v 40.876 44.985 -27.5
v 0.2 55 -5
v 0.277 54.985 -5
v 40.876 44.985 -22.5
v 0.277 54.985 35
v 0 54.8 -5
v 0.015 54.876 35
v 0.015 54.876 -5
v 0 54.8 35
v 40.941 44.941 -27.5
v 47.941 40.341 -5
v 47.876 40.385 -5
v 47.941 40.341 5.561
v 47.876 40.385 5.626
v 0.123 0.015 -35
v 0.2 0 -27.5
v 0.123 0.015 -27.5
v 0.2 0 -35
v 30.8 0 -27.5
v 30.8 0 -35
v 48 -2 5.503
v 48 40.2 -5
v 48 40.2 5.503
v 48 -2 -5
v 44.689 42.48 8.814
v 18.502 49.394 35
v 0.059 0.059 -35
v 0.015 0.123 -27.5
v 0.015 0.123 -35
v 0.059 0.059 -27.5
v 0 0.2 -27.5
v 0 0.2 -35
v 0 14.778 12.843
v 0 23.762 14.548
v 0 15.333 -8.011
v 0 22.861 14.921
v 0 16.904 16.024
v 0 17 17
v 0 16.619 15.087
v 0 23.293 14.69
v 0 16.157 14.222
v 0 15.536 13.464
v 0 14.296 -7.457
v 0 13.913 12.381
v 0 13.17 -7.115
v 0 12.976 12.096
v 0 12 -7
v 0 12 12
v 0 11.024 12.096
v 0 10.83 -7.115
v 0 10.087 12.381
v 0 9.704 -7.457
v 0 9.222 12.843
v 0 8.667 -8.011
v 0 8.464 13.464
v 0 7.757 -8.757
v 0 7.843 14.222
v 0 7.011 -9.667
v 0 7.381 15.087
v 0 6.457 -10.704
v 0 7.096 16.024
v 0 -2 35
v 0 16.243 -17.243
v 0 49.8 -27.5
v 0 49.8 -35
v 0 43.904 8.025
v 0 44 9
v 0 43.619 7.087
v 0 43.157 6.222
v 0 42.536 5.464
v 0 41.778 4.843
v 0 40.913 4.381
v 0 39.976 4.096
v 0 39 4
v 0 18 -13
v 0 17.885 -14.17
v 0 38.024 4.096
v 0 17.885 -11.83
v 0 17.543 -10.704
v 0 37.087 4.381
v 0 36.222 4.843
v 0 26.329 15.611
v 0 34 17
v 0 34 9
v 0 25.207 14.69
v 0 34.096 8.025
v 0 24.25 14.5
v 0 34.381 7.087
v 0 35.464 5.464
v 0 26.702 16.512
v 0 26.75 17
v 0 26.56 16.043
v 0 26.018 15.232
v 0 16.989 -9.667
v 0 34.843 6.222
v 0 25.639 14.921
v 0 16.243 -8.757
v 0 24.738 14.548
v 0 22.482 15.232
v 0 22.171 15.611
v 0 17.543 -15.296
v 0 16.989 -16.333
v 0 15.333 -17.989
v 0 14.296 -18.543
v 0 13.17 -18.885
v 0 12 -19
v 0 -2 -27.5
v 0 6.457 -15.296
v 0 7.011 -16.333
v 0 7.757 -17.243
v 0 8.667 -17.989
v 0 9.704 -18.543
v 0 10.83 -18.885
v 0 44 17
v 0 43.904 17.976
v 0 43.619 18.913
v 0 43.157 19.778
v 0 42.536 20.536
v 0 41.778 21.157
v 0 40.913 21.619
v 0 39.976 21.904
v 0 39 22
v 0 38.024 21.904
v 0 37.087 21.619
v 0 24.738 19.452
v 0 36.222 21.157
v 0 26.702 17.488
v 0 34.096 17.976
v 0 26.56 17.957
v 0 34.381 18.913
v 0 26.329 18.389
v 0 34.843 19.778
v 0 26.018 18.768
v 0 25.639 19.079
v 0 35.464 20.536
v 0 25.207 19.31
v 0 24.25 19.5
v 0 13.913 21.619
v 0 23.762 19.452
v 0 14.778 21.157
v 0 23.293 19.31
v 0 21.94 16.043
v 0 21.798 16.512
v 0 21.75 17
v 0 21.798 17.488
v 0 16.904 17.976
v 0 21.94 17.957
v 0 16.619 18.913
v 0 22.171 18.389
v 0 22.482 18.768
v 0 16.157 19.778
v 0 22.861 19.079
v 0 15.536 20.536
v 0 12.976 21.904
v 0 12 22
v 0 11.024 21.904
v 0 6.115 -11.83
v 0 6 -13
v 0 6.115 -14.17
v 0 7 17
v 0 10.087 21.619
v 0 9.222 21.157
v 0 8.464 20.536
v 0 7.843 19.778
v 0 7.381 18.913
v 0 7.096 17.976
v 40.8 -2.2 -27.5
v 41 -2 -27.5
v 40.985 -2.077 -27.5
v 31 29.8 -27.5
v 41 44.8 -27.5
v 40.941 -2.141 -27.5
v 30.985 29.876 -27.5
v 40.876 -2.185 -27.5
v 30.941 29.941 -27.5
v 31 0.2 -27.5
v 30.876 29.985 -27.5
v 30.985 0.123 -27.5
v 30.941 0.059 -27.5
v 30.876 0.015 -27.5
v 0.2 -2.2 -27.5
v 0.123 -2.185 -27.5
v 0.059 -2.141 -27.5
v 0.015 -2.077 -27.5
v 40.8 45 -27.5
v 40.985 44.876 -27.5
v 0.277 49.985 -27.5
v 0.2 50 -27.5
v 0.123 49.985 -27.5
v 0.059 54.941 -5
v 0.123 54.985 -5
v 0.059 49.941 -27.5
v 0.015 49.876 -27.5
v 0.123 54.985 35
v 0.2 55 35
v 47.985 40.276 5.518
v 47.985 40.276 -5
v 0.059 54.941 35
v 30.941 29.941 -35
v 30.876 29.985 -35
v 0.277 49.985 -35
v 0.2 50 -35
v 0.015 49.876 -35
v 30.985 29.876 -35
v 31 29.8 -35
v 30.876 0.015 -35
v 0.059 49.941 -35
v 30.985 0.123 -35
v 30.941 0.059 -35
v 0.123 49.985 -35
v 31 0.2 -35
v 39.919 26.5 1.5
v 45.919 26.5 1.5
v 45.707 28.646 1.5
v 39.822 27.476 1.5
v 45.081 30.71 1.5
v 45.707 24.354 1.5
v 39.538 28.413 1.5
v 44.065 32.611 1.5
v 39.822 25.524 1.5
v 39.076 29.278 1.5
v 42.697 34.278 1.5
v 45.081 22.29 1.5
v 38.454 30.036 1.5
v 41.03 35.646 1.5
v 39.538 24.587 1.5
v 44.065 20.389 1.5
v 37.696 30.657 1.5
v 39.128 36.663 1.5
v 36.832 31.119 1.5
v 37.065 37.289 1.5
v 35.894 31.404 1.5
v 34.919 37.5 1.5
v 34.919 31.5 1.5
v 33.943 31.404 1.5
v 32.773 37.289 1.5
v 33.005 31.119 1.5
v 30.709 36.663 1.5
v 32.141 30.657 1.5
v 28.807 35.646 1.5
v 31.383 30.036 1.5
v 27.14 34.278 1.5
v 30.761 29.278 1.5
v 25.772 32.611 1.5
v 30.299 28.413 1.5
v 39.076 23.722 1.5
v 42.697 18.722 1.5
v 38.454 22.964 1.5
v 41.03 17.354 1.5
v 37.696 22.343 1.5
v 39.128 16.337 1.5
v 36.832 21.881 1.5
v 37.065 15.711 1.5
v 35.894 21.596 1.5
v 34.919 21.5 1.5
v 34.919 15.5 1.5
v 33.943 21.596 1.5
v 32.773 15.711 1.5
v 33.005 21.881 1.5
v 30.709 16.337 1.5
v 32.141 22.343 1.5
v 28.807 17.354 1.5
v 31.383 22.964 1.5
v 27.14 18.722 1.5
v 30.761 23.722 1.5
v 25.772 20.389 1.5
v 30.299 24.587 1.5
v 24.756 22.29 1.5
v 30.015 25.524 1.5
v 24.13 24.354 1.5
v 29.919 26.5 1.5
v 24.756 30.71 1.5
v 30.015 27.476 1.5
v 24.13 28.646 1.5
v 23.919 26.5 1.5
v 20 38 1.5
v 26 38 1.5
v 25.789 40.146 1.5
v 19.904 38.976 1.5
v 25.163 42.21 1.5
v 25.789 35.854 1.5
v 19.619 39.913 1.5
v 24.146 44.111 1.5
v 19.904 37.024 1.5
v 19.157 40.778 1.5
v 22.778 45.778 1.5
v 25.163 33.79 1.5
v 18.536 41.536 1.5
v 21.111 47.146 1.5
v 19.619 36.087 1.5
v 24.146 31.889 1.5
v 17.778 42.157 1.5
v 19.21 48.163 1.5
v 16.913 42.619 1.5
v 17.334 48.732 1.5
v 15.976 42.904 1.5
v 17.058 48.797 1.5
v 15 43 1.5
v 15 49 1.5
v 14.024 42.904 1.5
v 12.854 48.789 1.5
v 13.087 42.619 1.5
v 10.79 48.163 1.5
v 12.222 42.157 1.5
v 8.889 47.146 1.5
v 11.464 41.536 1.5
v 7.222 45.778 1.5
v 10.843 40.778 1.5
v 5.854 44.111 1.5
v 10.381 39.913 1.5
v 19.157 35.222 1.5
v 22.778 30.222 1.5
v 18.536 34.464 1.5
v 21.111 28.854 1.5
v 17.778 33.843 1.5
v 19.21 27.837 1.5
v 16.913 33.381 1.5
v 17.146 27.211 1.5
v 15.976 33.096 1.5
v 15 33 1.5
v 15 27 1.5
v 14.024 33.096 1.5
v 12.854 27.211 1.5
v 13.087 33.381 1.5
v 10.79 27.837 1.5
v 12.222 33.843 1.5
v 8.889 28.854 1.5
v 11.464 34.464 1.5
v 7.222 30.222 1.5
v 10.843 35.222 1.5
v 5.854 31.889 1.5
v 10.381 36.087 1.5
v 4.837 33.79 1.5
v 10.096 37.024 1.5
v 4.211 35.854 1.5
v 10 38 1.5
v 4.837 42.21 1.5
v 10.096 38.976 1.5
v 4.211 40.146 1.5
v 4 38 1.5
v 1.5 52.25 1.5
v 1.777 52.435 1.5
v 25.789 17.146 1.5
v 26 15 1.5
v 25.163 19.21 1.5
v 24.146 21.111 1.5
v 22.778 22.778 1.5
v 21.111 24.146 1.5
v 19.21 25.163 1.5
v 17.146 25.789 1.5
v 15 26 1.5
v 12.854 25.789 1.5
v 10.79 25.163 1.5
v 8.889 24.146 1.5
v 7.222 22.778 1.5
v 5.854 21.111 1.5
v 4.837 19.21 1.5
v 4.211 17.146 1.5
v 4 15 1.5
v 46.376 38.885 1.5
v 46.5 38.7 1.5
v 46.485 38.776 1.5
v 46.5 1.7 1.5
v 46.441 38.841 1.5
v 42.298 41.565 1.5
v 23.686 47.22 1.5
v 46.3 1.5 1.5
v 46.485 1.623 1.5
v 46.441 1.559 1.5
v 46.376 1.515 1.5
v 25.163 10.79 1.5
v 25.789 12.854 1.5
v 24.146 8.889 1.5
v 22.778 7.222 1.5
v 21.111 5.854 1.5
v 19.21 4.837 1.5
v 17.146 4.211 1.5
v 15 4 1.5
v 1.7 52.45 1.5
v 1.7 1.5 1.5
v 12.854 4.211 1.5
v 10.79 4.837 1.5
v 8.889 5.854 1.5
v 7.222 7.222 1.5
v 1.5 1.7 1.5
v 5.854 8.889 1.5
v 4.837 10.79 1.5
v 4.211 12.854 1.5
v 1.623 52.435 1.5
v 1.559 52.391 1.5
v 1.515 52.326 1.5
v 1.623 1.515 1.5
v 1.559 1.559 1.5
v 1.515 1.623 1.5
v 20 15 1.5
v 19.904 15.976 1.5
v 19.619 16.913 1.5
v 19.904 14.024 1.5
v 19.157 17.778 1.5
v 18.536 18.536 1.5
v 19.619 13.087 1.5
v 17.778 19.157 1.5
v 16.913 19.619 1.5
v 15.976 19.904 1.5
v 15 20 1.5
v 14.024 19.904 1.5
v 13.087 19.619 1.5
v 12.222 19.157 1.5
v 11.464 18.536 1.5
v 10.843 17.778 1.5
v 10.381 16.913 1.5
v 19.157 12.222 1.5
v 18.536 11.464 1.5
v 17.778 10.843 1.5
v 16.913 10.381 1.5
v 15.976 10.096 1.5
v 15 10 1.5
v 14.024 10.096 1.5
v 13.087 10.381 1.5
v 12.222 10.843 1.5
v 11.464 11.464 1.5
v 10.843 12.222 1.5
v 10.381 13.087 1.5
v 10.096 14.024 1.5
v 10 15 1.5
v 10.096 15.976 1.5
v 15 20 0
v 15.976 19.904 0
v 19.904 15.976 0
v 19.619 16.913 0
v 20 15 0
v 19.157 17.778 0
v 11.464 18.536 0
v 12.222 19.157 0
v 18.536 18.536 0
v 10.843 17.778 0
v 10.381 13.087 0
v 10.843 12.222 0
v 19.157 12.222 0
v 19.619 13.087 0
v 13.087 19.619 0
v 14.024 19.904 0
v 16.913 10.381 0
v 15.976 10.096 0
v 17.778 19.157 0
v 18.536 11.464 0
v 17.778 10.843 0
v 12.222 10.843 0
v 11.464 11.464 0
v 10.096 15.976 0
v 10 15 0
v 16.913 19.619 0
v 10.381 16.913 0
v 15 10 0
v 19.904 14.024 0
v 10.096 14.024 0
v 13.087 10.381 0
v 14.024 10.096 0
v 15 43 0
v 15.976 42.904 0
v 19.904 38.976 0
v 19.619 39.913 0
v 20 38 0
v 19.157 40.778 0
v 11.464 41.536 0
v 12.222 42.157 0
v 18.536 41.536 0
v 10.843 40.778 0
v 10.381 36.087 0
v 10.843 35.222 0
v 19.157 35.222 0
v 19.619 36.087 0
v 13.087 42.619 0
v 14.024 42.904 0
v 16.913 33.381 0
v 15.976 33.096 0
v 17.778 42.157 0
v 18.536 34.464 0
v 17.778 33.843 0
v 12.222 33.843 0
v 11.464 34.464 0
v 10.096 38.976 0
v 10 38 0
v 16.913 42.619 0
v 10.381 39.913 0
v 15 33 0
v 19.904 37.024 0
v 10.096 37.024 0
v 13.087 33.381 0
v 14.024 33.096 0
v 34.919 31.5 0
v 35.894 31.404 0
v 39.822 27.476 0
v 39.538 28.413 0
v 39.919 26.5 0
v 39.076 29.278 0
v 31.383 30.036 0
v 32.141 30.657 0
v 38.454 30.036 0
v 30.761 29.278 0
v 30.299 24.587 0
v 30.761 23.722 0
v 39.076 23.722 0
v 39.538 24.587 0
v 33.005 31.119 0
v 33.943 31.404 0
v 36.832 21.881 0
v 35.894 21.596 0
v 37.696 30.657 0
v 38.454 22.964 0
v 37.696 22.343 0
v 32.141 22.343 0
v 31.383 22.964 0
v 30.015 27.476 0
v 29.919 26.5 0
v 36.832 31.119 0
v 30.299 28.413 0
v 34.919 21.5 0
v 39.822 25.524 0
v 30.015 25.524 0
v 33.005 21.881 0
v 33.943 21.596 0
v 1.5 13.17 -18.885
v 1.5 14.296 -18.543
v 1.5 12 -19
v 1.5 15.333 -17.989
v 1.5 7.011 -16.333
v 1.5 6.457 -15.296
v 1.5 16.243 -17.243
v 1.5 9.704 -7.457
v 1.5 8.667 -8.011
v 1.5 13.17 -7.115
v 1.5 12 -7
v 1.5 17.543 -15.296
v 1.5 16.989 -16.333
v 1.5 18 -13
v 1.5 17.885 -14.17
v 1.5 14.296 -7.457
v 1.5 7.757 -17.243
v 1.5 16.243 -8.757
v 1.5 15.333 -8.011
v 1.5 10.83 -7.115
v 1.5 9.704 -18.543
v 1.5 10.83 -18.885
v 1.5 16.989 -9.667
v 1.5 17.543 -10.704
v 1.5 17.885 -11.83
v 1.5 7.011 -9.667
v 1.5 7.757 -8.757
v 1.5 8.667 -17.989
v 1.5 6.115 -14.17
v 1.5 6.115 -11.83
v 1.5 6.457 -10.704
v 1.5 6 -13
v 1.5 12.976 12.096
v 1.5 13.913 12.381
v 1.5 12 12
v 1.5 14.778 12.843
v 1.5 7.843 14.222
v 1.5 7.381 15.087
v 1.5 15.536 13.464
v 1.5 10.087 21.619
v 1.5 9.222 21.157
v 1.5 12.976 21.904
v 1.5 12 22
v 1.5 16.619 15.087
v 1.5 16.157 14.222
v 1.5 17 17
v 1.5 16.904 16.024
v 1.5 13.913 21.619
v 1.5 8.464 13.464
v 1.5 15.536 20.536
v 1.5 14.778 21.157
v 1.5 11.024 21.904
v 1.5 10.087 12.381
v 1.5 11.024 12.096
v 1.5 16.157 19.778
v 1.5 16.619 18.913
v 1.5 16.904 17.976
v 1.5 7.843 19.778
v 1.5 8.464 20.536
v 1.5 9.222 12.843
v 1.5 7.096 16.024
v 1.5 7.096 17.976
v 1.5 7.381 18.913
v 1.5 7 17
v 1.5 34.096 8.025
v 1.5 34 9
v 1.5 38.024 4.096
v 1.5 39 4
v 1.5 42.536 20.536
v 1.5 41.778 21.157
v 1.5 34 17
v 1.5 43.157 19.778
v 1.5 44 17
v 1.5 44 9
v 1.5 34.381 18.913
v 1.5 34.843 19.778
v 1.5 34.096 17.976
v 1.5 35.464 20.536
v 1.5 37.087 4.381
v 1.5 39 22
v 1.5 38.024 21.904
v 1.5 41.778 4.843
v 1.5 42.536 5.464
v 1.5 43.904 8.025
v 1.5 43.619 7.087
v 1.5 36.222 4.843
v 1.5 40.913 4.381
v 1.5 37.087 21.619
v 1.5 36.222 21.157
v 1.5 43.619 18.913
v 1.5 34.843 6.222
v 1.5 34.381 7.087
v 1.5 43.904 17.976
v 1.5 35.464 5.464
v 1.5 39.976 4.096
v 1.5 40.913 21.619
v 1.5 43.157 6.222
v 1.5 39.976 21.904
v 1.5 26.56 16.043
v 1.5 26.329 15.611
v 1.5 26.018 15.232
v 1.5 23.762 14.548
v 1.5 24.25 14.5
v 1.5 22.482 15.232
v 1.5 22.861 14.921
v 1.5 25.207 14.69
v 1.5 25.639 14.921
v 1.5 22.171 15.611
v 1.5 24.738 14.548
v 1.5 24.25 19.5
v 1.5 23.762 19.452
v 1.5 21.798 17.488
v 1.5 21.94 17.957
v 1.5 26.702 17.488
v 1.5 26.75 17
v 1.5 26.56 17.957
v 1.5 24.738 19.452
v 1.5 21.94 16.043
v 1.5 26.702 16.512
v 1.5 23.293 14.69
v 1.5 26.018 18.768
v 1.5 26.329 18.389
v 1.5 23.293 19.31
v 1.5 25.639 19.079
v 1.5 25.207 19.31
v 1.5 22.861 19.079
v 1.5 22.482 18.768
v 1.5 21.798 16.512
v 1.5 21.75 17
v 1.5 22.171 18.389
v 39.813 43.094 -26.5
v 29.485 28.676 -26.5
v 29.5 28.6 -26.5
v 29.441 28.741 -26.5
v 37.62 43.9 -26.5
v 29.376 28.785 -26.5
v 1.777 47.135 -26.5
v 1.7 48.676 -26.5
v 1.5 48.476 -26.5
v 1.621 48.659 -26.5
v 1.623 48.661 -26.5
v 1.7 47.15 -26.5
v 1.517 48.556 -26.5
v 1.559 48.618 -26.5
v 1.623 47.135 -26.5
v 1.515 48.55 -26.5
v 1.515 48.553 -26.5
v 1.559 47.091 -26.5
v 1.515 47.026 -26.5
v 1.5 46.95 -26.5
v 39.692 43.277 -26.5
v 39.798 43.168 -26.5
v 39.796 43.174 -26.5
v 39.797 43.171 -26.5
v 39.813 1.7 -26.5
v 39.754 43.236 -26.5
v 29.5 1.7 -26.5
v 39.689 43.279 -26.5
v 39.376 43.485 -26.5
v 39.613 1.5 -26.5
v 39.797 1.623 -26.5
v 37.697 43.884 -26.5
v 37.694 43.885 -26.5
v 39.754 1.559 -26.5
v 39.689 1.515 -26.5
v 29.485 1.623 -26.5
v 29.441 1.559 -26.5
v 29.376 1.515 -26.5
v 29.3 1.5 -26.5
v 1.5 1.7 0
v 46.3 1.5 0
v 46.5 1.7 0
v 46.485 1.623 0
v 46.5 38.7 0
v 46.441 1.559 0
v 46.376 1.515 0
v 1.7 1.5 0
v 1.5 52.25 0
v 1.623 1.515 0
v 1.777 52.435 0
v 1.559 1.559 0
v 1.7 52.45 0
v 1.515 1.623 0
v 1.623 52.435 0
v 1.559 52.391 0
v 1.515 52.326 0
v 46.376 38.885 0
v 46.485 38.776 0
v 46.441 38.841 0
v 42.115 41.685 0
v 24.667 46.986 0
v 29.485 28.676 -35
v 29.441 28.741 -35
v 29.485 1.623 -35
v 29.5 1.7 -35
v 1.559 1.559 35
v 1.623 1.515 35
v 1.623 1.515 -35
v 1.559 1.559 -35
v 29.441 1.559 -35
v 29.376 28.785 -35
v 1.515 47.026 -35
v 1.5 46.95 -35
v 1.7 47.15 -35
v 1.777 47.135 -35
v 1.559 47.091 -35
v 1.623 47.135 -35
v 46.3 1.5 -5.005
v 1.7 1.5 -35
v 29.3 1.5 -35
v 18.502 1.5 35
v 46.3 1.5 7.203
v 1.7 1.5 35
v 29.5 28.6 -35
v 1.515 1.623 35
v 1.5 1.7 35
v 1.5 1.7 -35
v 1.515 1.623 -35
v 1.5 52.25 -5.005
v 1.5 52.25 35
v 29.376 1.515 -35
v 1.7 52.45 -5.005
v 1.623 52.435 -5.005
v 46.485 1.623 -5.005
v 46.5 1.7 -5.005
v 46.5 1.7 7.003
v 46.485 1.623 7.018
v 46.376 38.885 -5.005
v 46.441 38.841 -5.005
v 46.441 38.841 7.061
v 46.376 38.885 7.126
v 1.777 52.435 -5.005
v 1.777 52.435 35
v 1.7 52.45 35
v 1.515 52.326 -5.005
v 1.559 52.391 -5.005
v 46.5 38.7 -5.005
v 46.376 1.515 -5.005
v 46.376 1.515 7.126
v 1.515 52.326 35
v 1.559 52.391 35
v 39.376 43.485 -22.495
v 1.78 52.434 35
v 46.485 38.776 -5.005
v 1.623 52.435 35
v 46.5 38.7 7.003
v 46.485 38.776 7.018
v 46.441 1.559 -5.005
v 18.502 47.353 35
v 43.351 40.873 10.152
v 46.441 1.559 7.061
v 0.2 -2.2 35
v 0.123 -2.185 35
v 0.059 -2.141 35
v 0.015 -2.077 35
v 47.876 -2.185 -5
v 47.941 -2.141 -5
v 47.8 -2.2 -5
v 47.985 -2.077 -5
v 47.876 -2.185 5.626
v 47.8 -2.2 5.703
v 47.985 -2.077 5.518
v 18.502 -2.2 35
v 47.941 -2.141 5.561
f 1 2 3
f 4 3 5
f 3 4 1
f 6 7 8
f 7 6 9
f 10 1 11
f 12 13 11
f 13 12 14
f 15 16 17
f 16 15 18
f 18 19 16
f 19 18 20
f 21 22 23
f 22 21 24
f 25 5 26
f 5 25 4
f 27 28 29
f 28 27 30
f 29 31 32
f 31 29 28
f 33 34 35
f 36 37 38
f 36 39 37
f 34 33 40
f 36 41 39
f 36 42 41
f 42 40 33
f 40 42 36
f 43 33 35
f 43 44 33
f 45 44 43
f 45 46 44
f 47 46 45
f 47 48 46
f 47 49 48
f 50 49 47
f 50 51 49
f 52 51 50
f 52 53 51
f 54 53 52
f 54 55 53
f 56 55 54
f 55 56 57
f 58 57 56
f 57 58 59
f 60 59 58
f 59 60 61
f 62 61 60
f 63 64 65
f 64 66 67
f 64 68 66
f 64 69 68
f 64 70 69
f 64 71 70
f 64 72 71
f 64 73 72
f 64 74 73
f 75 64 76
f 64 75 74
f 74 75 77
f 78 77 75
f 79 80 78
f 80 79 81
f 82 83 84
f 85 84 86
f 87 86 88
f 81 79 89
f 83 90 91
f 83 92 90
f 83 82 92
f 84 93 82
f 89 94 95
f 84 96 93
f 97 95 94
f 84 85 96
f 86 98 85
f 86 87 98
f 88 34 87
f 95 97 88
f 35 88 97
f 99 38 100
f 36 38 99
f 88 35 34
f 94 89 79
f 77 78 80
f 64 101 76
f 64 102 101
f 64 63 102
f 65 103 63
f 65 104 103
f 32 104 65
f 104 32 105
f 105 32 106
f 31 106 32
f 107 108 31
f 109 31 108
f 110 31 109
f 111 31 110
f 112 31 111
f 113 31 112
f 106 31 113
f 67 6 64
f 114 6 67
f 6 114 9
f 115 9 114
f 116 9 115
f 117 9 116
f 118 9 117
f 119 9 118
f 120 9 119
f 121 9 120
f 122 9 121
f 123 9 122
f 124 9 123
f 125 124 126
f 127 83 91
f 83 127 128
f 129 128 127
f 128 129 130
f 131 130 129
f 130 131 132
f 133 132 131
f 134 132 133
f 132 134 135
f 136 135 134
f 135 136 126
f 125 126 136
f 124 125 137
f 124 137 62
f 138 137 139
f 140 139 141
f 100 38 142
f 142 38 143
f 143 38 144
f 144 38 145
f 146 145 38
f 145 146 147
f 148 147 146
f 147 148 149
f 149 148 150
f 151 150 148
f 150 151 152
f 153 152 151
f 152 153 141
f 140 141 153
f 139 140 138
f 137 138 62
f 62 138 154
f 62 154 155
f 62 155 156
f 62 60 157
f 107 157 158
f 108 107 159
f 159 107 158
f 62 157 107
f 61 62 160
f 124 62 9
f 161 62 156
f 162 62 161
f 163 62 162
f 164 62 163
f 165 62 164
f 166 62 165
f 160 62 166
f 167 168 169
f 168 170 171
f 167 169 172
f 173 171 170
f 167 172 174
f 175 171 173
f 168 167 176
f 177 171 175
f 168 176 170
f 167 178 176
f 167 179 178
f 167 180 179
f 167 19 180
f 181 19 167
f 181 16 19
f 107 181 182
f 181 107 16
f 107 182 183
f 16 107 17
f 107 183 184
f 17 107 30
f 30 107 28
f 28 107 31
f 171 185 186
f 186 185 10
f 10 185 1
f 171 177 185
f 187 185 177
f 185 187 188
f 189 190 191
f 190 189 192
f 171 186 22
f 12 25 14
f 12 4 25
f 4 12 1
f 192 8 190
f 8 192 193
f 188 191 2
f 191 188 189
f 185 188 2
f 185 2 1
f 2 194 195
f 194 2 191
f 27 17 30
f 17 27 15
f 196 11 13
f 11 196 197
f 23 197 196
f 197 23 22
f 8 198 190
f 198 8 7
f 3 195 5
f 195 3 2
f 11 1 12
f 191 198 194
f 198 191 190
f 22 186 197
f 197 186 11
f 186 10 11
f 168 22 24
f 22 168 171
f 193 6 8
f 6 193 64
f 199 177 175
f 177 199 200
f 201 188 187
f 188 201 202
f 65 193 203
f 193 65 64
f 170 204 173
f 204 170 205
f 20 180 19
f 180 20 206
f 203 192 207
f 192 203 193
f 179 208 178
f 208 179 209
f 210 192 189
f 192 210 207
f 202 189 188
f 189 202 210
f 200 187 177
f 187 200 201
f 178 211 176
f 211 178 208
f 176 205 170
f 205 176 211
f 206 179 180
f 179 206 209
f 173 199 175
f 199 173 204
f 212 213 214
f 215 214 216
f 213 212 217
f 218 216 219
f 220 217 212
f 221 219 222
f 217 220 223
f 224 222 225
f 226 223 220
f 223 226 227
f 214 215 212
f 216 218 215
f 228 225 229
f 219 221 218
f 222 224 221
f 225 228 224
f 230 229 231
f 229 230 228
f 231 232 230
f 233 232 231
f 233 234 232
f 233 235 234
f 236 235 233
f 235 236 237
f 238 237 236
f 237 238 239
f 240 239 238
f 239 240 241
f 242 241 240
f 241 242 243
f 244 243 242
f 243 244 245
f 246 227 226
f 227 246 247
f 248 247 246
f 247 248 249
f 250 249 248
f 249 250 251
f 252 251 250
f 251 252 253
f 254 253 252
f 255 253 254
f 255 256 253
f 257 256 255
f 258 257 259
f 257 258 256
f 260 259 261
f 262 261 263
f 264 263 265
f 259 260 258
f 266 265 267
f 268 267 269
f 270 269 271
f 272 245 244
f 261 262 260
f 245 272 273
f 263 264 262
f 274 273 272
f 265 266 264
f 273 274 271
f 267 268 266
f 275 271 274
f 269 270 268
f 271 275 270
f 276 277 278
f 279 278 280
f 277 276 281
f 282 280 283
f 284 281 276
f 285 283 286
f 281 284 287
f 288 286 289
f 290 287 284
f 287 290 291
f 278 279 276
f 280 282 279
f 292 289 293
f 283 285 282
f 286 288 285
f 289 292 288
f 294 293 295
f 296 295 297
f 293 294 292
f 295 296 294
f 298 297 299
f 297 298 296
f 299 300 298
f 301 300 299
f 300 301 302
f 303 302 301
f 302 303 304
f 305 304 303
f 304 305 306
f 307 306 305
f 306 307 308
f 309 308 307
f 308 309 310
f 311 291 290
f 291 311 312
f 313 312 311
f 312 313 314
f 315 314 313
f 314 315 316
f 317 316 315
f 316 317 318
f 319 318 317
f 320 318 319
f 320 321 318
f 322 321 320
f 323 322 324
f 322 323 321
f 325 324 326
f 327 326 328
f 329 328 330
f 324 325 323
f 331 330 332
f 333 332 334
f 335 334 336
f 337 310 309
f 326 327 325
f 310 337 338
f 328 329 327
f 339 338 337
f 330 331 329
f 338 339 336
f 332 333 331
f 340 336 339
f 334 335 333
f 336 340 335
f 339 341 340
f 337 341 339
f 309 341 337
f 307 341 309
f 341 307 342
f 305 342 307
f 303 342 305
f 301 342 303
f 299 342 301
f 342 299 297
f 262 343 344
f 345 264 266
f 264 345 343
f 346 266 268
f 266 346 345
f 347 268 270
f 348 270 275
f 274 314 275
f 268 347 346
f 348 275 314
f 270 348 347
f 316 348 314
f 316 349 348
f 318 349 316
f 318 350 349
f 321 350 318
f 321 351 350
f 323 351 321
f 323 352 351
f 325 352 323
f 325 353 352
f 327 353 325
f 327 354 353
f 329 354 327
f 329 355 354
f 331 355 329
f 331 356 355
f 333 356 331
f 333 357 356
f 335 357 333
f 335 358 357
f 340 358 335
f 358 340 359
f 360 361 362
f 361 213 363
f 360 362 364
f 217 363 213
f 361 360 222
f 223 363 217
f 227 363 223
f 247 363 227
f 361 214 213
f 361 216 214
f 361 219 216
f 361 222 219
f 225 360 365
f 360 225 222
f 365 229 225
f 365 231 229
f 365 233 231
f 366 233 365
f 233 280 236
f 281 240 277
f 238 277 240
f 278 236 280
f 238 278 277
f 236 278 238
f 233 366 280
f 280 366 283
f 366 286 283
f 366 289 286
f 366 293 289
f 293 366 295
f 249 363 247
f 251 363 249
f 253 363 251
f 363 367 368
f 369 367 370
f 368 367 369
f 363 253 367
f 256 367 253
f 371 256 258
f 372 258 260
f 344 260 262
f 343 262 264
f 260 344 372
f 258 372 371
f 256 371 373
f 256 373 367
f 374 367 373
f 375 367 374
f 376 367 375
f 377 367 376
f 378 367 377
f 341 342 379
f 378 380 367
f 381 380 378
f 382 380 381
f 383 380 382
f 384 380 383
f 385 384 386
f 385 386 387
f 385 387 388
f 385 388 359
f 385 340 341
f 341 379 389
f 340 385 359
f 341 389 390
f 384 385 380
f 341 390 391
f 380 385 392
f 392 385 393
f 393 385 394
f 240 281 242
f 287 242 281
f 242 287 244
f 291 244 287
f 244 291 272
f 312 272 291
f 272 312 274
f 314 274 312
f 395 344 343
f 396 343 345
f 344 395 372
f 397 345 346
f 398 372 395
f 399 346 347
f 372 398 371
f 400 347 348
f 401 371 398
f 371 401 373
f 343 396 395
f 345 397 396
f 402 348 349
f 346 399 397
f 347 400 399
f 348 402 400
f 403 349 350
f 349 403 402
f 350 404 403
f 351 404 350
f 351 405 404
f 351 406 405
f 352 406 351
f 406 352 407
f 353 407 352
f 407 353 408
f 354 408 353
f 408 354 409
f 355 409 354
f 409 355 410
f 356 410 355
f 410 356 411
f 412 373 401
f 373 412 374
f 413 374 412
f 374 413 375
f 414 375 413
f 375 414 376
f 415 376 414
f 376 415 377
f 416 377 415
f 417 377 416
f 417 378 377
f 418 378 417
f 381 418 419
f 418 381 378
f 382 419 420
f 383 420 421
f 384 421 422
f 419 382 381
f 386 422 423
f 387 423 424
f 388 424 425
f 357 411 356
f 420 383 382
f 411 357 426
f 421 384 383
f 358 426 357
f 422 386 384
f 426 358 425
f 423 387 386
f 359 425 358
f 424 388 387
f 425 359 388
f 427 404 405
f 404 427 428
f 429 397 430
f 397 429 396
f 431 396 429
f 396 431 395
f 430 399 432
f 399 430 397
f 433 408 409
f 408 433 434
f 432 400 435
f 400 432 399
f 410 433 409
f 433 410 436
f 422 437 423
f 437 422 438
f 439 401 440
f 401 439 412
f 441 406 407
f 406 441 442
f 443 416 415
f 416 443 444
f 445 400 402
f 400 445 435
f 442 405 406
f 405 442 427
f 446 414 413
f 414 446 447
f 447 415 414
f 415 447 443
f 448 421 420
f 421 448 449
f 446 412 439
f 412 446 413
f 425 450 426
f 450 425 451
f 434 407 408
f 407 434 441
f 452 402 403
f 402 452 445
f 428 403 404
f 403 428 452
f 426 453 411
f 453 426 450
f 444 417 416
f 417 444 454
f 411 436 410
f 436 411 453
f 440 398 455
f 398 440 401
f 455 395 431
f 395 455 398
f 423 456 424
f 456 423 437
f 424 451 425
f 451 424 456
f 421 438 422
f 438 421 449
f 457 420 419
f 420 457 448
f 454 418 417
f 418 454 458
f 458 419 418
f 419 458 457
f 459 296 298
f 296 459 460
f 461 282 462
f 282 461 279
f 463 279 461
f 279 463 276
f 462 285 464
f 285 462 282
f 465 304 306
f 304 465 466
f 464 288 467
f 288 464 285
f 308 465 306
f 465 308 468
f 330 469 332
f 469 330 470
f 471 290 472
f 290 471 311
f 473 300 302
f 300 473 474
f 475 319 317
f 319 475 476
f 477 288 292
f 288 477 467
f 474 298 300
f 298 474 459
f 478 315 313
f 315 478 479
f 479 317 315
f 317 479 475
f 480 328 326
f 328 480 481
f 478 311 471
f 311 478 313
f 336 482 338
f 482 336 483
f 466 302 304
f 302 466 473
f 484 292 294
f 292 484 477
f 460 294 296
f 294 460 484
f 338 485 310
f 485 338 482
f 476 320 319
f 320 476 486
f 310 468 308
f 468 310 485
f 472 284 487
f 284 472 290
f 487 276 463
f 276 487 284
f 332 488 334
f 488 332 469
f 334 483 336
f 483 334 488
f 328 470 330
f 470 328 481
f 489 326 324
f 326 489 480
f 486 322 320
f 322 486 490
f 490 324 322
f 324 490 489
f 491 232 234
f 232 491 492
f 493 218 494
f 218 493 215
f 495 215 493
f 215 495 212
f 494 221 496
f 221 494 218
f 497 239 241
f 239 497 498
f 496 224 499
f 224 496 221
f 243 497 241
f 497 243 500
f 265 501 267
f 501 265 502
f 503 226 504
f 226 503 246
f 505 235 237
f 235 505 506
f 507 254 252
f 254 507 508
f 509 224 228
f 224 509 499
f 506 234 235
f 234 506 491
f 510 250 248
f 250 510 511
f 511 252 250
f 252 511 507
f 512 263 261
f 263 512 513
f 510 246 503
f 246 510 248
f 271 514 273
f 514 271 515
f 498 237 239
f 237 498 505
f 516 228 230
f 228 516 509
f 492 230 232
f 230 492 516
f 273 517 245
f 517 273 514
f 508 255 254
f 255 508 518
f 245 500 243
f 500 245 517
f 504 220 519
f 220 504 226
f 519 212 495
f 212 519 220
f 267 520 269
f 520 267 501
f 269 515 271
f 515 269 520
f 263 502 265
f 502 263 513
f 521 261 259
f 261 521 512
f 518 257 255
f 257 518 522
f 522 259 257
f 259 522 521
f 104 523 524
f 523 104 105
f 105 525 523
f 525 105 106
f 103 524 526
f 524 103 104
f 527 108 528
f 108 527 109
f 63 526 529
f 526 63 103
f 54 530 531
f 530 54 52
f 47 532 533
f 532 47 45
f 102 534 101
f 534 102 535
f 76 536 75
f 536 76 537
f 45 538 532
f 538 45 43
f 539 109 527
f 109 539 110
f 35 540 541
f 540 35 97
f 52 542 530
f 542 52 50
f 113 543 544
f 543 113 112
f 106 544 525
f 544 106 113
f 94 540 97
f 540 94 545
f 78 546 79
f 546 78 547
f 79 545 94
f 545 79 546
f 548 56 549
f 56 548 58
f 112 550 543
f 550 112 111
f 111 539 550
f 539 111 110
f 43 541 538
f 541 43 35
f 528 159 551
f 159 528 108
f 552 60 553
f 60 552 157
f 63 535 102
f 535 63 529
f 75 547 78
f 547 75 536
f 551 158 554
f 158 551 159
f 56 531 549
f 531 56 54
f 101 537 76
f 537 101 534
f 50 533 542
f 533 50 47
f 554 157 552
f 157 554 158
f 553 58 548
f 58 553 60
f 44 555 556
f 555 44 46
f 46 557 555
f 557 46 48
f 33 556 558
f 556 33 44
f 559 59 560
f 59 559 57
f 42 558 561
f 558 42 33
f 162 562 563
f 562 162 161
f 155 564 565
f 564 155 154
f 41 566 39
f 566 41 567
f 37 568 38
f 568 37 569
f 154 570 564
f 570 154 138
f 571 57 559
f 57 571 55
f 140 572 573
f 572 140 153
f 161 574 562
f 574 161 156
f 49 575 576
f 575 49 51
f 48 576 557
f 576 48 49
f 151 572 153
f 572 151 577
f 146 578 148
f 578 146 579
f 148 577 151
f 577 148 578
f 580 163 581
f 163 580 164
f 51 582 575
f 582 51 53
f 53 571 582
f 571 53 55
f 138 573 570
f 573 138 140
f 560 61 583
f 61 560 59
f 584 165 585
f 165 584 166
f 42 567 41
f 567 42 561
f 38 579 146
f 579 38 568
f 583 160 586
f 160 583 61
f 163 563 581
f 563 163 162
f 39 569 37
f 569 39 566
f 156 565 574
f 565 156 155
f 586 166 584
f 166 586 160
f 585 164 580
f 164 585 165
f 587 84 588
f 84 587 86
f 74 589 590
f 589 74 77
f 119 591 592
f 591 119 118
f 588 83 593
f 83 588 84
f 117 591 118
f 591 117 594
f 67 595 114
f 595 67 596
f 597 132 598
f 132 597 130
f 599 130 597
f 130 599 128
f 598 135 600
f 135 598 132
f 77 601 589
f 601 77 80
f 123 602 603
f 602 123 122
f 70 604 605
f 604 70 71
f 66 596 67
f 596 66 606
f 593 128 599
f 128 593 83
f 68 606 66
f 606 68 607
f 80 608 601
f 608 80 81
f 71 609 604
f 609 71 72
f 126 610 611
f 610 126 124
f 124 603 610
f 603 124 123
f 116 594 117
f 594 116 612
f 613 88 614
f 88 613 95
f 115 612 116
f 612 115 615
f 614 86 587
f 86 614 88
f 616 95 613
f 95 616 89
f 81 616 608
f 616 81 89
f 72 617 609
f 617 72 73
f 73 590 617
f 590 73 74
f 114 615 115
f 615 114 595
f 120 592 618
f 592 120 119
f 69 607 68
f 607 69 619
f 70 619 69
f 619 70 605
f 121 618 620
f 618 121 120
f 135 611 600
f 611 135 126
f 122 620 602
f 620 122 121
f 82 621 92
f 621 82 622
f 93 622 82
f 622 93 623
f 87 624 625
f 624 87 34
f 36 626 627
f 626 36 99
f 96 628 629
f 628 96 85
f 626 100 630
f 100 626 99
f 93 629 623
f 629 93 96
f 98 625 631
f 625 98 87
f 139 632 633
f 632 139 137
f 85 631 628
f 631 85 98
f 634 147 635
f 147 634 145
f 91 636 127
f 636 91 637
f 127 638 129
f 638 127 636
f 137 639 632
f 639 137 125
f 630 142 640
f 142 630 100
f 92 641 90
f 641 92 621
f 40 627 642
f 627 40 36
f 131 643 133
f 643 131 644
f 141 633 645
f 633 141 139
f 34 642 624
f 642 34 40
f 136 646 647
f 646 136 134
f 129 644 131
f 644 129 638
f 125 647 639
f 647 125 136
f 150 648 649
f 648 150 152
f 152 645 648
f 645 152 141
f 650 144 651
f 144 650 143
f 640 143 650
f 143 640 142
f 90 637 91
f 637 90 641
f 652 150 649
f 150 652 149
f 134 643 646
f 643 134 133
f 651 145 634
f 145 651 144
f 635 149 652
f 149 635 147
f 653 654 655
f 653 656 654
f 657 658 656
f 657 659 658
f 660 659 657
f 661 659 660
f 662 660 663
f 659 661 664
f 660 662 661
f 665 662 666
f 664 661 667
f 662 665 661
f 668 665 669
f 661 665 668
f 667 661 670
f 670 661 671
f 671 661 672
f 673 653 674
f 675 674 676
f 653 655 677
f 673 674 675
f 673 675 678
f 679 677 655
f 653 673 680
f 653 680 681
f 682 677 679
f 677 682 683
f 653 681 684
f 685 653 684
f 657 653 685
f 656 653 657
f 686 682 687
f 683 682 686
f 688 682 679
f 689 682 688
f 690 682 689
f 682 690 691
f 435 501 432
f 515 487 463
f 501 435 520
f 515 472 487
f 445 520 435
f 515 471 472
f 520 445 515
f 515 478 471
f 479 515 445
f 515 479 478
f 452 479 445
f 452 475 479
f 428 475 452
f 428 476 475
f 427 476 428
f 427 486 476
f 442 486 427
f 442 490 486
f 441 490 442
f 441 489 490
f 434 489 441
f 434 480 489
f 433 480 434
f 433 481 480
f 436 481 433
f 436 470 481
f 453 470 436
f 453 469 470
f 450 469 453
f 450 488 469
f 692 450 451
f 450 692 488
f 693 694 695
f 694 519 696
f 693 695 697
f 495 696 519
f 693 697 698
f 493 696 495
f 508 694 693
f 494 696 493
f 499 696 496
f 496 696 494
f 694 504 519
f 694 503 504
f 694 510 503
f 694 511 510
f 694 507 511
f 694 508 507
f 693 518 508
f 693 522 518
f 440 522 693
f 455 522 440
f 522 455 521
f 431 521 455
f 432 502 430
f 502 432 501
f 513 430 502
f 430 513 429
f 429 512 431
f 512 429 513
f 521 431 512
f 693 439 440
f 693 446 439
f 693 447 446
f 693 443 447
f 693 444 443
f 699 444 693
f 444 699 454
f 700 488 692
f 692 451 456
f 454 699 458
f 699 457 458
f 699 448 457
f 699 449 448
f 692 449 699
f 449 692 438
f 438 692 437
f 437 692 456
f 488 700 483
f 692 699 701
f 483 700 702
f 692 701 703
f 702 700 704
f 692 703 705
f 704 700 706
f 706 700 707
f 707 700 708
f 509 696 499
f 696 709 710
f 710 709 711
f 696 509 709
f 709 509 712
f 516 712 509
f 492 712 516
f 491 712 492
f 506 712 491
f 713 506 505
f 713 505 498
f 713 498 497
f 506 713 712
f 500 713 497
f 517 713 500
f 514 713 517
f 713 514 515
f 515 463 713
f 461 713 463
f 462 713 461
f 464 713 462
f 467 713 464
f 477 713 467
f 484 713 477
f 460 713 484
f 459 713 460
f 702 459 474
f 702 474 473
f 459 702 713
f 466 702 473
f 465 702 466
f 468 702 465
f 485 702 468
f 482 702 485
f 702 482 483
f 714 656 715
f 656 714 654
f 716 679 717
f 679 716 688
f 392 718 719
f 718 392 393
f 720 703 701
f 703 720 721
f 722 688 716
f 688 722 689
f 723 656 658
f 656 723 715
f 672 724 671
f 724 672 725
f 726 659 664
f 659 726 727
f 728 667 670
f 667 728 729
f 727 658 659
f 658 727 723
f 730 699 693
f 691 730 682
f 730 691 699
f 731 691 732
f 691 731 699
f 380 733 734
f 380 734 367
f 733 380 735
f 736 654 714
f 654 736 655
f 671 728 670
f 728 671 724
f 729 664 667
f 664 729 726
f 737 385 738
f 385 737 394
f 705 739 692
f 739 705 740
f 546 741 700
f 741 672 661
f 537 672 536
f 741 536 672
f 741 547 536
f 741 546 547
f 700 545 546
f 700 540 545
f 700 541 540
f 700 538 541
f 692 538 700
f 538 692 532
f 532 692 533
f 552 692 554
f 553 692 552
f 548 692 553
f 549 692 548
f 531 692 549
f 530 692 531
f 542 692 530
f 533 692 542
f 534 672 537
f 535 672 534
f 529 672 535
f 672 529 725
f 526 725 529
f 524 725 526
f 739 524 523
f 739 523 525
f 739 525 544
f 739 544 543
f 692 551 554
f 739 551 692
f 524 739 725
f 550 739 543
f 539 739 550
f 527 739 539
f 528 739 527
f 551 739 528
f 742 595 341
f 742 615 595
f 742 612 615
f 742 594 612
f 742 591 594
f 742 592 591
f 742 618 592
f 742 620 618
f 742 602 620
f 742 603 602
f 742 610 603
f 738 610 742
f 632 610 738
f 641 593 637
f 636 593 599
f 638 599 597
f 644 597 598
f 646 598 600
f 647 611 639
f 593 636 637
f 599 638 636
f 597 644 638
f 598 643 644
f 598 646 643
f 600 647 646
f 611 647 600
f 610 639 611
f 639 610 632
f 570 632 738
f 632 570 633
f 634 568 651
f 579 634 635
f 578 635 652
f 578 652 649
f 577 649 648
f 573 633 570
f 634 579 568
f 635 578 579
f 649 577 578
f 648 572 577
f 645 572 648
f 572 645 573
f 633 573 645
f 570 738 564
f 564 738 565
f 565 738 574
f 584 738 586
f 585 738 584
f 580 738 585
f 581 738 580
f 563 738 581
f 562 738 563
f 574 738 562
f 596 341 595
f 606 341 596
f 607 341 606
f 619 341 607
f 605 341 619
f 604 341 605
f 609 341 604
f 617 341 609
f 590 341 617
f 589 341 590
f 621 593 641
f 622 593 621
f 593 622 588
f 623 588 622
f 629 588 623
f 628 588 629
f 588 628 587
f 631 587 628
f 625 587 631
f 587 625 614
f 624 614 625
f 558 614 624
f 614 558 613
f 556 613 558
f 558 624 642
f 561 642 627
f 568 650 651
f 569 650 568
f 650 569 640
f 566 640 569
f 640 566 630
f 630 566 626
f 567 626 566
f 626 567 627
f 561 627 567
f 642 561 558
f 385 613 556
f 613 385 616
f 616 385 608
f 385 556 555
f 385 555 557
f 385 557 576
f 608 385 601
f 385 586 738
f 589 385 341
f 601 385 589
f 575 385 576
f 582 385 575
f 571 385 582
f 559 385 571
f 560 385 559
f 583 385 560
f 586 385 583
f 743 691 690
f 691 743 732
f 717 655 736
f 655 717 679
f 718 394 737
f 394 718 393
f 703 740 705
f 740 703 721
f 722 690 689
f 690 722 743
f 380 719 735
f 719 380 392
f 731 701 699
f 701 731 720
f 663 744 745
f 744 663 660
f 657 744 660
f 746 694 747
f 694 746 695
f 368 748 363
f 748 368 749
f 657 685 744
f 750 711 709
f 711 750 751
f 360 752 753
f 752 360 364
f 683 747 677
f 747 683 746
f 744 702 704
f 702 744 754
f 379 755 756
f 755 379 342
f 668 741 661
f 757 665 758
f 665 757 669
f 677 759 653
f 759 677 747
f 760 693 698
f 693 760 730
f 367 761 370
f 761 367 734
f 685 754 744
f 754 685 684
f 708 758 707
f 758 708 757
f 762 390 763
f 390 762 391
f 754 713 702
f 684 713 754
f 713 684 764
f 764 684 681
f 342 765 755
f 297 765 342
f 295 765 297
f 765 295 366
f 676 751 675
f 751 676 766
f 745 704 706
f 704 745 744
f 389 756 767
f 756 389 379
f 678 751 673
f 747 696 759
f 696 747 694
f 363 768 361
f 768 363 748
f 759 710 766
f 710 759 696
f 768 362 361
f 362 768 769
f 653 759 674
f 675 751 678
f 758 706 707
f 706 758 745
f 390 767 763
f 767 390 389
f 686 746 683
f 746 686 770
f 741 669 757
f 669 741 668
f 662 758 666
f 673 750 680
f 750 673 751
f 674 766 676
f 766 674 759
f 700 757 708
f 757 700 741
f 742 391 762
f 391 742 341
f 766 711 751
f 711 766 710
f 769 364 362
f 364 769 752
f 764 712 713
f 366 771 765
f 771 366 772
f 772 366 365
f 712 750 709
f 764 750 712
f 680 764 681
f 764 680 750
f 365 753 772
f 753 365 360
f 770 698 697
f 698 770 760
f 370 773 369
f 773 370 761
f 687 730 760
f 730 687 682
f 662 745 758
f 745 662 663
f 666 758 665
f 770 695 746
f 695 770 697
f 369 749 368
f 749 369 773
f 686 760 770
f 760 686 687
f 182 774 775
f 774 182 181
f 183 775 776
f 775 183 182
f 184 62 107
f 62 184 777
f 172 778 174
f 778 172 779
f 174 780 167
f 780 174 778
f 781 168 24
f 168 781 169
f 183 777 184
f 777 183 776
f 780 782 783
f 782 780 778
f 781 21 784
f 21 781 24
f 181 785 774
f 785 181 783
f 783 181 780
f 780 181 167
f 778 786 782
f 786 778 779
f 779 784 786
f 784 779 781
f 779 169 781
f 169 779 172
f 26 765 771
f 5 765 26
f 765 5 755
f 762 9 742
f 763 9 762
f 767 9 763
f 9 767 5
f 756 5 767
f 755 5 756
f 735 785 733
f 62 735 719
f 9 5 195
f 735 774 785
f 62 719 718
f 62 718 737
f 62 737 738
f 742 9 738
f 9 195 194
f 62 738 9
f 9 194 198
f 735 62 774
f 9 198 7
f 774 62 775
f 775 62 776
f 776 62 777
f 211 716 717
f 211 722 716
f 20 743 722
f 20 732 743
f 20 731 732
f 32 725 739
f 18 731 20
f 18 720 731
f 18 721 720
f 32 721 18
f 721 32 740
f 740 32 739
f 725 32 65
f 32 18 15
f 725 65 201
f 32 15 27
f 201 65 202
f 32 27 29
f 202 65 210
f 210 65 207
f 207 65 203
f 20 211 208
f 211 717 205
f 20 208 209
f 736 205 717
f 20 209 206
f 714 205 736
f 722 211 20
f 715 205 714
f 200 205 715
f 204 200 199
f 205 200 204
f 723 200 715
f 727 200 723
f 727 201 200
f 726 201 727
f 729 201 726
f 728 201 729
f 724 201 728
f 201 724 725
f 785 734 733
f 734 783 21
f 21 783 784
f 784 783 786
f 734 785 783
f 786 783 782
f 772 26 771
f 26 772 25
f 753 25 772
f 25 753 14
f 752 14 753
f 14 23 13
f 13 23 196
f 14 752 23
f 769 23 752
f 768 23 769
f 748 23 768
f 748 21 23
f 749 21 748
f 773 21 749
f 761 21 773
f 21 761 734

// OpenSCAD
dc=.4;
w=1.5;

module lamp() {
    translate([0,0,12/2])
        cylinder(d=22, h=12, $fn=32, center=true);
    translate([0,0,-21/2])
        cylinder(d=10, h=21, $fn=32, center=true);
}

module lampGroup() {
    ld=23;
    for (t=[[0,0,0],[0,ld,0],[sqrt(3)/2*ld,ld/2,0]]) {
        translate(t)
            lamp();
    }
}

module caseF() {
    union() {
        hull() {
            for (t=[[0+dc/2,0+dc/2,15],[48-dc/2,0+dc/2,15],[48-dc/2,40+dc/2,15],[0+dc/2,55-dc/2,15]]) {
                translate(t)
                    cylinder(h=40, d=0.4, $fn=16, center=true);
            }
            g=25;
            for (t=[[0+dc/2,0+dc/2,-g],[0+dc/2,50-dc/2,-g],[41-dc/2,0+dc/2,-g],[41-dc/2,45-dc/2,-g]]) {
                translate(t)
                    cylinder(h=5, d=0.4, $fn=16, center=true);
            }
        }
        hull() {
            for (t=[[0+dc/2,0+dc/2,0],[0+dc/2,50-dc/2,0],[31-dc/2,0+dc/2,0],[31-dc/2,30-dc/2,0]]) {
                translate(t)
                    cylinder(h=70, d=0.4, $fn=16, center=true);
            }
        }
    }
}

module case(){
    
    difference() {
        union() {
            hull() {
                for (t=[[0+dc/2,0+dc/2-2.2,15],[48-dc/2,0+dc/2-2.2,15],[48-dc/2,40+dc/2,15],[0+dc/2,55-dc/2,15]]) {
                    translate(t)
                        cylinder(h=40, d=0.4, $fn=16, center=true);
                }
                g=25;
                for (t=[[0+dc/2,0+dc/2-2.2,-g],[0+dc/2,50-dc/2,-g],[41-dc/2,0+dc/2-2.2,-g],[41-dc/2,45-dc/2,-g]]) {
                    translate(t)
                        cylinder(h=5, d=0.4, $fn=16, center=true);
                }
            }
            hull() {
                for (t=[[0+dc/2,0+dc/2,0],[0+dc/2,50-dc/2,0],[31-dc/2,0+dc/2,0],[31-dc/2,30-dc/2,0]]) {
                    translate(t)
                        cylinder(h=70, d=0.4, $fn=16, center=true);
                }
            }
        }

        union() {
            
            hull() {
                for (t=[[0+dc/2+w,0+dc/2+w,15],[48-dc/2-w,0+dc/2+w,15],[48-dc/2-w,40+dc/2-w,15],[0+dc/2+w,55-dc/2-1.7*w,15]]) {
                    translate(t)
                        cylinder(h=40+0.01, d=0.4, $fn=16, center=true);
                }
                g=25;
                for (t=[[0+dc/2+w,0+dc/2+w,-g],[0+dc/2+w,50-dc/2-w,-g],[41-dc/2-w,0+dc/2+w,-g],[41-dc/2-w,45-dc/2-w,-g]]) {
                    translate(t)
                        cylinder(h=5+0.01, d=0.4, $fn=16, center=true);
                }
            }
            
            
            hull() {
                for (t=[[0+dc/2+w,0+dc/2+w,0],[0+dc/2+w,50-dc/2-1.9*w,0],[31-dc/2-w,0+dc/2+w,0],[31-dc/2-w,30-dc/2-0.8*w,0]]) {
                    translate(t)
                        cylinder(h=70+0.01, d=0.4, $fn=16, center=true);
                }
            }
        }
        
        
    }

}


//mirror([1,0,0]) {

module lightCase() {

difference() {
intersection() {
    union() {
    translate([60/2,60/2,w/2-28])
        cube([60,60,w], center=true);
    translate([60/2,60/2,w/2-5+5])
        cube([60,60,w], center=true);
    }
    caseF();
    
}
translate([15,15,-3.5+5])
    lampGroup(); 

translate([0,0,-40])
hull() {
    for (t=[[0+dc/2+w,0+dc/2+w,0],[0+dc/2+w,50-dc/2-1.9*w,0],[31-dc/2-w,0+dc/2+w,0],[31-dc/2-w,30-dc/2-0.8*w,0]]) {
        translate(t)
            cylinder(h=70+0.01, d=0.4, $fn=16, center=true);
    }
}

}

//translate([15,15,-3.5+5])
//    lampGroup(); 

difference() {
    case();
    rotate([0,90,0]) {
        translate([35,0,2]){
            translate([-16-6,12,0])
                cylinder(d=12, h=5, $fn=32, center=true);
            translate([-47-5,12,0])
                cylinder(d=10, h=5, $fn=32, center=true);
            hull() {   
            translate([-47-5,12+17+10,0])
                cylinder(d=10, h=5, $fn=32, center=true);
            translate([-47-5+8,12+17+10,0])
                cylinder(d=10, h=5, $fn=32, center=true);
            }
            translate([-47-5,12+5+4.5/2+5,0])
                cylinder(d=5, h=5, $fn=32, center=true);
            }
    }
}
//}

}

difference() {
lightCase();

translate([48,25,55])
rotate([0,45,0])
    cube([70,70,70], center=true);
}
